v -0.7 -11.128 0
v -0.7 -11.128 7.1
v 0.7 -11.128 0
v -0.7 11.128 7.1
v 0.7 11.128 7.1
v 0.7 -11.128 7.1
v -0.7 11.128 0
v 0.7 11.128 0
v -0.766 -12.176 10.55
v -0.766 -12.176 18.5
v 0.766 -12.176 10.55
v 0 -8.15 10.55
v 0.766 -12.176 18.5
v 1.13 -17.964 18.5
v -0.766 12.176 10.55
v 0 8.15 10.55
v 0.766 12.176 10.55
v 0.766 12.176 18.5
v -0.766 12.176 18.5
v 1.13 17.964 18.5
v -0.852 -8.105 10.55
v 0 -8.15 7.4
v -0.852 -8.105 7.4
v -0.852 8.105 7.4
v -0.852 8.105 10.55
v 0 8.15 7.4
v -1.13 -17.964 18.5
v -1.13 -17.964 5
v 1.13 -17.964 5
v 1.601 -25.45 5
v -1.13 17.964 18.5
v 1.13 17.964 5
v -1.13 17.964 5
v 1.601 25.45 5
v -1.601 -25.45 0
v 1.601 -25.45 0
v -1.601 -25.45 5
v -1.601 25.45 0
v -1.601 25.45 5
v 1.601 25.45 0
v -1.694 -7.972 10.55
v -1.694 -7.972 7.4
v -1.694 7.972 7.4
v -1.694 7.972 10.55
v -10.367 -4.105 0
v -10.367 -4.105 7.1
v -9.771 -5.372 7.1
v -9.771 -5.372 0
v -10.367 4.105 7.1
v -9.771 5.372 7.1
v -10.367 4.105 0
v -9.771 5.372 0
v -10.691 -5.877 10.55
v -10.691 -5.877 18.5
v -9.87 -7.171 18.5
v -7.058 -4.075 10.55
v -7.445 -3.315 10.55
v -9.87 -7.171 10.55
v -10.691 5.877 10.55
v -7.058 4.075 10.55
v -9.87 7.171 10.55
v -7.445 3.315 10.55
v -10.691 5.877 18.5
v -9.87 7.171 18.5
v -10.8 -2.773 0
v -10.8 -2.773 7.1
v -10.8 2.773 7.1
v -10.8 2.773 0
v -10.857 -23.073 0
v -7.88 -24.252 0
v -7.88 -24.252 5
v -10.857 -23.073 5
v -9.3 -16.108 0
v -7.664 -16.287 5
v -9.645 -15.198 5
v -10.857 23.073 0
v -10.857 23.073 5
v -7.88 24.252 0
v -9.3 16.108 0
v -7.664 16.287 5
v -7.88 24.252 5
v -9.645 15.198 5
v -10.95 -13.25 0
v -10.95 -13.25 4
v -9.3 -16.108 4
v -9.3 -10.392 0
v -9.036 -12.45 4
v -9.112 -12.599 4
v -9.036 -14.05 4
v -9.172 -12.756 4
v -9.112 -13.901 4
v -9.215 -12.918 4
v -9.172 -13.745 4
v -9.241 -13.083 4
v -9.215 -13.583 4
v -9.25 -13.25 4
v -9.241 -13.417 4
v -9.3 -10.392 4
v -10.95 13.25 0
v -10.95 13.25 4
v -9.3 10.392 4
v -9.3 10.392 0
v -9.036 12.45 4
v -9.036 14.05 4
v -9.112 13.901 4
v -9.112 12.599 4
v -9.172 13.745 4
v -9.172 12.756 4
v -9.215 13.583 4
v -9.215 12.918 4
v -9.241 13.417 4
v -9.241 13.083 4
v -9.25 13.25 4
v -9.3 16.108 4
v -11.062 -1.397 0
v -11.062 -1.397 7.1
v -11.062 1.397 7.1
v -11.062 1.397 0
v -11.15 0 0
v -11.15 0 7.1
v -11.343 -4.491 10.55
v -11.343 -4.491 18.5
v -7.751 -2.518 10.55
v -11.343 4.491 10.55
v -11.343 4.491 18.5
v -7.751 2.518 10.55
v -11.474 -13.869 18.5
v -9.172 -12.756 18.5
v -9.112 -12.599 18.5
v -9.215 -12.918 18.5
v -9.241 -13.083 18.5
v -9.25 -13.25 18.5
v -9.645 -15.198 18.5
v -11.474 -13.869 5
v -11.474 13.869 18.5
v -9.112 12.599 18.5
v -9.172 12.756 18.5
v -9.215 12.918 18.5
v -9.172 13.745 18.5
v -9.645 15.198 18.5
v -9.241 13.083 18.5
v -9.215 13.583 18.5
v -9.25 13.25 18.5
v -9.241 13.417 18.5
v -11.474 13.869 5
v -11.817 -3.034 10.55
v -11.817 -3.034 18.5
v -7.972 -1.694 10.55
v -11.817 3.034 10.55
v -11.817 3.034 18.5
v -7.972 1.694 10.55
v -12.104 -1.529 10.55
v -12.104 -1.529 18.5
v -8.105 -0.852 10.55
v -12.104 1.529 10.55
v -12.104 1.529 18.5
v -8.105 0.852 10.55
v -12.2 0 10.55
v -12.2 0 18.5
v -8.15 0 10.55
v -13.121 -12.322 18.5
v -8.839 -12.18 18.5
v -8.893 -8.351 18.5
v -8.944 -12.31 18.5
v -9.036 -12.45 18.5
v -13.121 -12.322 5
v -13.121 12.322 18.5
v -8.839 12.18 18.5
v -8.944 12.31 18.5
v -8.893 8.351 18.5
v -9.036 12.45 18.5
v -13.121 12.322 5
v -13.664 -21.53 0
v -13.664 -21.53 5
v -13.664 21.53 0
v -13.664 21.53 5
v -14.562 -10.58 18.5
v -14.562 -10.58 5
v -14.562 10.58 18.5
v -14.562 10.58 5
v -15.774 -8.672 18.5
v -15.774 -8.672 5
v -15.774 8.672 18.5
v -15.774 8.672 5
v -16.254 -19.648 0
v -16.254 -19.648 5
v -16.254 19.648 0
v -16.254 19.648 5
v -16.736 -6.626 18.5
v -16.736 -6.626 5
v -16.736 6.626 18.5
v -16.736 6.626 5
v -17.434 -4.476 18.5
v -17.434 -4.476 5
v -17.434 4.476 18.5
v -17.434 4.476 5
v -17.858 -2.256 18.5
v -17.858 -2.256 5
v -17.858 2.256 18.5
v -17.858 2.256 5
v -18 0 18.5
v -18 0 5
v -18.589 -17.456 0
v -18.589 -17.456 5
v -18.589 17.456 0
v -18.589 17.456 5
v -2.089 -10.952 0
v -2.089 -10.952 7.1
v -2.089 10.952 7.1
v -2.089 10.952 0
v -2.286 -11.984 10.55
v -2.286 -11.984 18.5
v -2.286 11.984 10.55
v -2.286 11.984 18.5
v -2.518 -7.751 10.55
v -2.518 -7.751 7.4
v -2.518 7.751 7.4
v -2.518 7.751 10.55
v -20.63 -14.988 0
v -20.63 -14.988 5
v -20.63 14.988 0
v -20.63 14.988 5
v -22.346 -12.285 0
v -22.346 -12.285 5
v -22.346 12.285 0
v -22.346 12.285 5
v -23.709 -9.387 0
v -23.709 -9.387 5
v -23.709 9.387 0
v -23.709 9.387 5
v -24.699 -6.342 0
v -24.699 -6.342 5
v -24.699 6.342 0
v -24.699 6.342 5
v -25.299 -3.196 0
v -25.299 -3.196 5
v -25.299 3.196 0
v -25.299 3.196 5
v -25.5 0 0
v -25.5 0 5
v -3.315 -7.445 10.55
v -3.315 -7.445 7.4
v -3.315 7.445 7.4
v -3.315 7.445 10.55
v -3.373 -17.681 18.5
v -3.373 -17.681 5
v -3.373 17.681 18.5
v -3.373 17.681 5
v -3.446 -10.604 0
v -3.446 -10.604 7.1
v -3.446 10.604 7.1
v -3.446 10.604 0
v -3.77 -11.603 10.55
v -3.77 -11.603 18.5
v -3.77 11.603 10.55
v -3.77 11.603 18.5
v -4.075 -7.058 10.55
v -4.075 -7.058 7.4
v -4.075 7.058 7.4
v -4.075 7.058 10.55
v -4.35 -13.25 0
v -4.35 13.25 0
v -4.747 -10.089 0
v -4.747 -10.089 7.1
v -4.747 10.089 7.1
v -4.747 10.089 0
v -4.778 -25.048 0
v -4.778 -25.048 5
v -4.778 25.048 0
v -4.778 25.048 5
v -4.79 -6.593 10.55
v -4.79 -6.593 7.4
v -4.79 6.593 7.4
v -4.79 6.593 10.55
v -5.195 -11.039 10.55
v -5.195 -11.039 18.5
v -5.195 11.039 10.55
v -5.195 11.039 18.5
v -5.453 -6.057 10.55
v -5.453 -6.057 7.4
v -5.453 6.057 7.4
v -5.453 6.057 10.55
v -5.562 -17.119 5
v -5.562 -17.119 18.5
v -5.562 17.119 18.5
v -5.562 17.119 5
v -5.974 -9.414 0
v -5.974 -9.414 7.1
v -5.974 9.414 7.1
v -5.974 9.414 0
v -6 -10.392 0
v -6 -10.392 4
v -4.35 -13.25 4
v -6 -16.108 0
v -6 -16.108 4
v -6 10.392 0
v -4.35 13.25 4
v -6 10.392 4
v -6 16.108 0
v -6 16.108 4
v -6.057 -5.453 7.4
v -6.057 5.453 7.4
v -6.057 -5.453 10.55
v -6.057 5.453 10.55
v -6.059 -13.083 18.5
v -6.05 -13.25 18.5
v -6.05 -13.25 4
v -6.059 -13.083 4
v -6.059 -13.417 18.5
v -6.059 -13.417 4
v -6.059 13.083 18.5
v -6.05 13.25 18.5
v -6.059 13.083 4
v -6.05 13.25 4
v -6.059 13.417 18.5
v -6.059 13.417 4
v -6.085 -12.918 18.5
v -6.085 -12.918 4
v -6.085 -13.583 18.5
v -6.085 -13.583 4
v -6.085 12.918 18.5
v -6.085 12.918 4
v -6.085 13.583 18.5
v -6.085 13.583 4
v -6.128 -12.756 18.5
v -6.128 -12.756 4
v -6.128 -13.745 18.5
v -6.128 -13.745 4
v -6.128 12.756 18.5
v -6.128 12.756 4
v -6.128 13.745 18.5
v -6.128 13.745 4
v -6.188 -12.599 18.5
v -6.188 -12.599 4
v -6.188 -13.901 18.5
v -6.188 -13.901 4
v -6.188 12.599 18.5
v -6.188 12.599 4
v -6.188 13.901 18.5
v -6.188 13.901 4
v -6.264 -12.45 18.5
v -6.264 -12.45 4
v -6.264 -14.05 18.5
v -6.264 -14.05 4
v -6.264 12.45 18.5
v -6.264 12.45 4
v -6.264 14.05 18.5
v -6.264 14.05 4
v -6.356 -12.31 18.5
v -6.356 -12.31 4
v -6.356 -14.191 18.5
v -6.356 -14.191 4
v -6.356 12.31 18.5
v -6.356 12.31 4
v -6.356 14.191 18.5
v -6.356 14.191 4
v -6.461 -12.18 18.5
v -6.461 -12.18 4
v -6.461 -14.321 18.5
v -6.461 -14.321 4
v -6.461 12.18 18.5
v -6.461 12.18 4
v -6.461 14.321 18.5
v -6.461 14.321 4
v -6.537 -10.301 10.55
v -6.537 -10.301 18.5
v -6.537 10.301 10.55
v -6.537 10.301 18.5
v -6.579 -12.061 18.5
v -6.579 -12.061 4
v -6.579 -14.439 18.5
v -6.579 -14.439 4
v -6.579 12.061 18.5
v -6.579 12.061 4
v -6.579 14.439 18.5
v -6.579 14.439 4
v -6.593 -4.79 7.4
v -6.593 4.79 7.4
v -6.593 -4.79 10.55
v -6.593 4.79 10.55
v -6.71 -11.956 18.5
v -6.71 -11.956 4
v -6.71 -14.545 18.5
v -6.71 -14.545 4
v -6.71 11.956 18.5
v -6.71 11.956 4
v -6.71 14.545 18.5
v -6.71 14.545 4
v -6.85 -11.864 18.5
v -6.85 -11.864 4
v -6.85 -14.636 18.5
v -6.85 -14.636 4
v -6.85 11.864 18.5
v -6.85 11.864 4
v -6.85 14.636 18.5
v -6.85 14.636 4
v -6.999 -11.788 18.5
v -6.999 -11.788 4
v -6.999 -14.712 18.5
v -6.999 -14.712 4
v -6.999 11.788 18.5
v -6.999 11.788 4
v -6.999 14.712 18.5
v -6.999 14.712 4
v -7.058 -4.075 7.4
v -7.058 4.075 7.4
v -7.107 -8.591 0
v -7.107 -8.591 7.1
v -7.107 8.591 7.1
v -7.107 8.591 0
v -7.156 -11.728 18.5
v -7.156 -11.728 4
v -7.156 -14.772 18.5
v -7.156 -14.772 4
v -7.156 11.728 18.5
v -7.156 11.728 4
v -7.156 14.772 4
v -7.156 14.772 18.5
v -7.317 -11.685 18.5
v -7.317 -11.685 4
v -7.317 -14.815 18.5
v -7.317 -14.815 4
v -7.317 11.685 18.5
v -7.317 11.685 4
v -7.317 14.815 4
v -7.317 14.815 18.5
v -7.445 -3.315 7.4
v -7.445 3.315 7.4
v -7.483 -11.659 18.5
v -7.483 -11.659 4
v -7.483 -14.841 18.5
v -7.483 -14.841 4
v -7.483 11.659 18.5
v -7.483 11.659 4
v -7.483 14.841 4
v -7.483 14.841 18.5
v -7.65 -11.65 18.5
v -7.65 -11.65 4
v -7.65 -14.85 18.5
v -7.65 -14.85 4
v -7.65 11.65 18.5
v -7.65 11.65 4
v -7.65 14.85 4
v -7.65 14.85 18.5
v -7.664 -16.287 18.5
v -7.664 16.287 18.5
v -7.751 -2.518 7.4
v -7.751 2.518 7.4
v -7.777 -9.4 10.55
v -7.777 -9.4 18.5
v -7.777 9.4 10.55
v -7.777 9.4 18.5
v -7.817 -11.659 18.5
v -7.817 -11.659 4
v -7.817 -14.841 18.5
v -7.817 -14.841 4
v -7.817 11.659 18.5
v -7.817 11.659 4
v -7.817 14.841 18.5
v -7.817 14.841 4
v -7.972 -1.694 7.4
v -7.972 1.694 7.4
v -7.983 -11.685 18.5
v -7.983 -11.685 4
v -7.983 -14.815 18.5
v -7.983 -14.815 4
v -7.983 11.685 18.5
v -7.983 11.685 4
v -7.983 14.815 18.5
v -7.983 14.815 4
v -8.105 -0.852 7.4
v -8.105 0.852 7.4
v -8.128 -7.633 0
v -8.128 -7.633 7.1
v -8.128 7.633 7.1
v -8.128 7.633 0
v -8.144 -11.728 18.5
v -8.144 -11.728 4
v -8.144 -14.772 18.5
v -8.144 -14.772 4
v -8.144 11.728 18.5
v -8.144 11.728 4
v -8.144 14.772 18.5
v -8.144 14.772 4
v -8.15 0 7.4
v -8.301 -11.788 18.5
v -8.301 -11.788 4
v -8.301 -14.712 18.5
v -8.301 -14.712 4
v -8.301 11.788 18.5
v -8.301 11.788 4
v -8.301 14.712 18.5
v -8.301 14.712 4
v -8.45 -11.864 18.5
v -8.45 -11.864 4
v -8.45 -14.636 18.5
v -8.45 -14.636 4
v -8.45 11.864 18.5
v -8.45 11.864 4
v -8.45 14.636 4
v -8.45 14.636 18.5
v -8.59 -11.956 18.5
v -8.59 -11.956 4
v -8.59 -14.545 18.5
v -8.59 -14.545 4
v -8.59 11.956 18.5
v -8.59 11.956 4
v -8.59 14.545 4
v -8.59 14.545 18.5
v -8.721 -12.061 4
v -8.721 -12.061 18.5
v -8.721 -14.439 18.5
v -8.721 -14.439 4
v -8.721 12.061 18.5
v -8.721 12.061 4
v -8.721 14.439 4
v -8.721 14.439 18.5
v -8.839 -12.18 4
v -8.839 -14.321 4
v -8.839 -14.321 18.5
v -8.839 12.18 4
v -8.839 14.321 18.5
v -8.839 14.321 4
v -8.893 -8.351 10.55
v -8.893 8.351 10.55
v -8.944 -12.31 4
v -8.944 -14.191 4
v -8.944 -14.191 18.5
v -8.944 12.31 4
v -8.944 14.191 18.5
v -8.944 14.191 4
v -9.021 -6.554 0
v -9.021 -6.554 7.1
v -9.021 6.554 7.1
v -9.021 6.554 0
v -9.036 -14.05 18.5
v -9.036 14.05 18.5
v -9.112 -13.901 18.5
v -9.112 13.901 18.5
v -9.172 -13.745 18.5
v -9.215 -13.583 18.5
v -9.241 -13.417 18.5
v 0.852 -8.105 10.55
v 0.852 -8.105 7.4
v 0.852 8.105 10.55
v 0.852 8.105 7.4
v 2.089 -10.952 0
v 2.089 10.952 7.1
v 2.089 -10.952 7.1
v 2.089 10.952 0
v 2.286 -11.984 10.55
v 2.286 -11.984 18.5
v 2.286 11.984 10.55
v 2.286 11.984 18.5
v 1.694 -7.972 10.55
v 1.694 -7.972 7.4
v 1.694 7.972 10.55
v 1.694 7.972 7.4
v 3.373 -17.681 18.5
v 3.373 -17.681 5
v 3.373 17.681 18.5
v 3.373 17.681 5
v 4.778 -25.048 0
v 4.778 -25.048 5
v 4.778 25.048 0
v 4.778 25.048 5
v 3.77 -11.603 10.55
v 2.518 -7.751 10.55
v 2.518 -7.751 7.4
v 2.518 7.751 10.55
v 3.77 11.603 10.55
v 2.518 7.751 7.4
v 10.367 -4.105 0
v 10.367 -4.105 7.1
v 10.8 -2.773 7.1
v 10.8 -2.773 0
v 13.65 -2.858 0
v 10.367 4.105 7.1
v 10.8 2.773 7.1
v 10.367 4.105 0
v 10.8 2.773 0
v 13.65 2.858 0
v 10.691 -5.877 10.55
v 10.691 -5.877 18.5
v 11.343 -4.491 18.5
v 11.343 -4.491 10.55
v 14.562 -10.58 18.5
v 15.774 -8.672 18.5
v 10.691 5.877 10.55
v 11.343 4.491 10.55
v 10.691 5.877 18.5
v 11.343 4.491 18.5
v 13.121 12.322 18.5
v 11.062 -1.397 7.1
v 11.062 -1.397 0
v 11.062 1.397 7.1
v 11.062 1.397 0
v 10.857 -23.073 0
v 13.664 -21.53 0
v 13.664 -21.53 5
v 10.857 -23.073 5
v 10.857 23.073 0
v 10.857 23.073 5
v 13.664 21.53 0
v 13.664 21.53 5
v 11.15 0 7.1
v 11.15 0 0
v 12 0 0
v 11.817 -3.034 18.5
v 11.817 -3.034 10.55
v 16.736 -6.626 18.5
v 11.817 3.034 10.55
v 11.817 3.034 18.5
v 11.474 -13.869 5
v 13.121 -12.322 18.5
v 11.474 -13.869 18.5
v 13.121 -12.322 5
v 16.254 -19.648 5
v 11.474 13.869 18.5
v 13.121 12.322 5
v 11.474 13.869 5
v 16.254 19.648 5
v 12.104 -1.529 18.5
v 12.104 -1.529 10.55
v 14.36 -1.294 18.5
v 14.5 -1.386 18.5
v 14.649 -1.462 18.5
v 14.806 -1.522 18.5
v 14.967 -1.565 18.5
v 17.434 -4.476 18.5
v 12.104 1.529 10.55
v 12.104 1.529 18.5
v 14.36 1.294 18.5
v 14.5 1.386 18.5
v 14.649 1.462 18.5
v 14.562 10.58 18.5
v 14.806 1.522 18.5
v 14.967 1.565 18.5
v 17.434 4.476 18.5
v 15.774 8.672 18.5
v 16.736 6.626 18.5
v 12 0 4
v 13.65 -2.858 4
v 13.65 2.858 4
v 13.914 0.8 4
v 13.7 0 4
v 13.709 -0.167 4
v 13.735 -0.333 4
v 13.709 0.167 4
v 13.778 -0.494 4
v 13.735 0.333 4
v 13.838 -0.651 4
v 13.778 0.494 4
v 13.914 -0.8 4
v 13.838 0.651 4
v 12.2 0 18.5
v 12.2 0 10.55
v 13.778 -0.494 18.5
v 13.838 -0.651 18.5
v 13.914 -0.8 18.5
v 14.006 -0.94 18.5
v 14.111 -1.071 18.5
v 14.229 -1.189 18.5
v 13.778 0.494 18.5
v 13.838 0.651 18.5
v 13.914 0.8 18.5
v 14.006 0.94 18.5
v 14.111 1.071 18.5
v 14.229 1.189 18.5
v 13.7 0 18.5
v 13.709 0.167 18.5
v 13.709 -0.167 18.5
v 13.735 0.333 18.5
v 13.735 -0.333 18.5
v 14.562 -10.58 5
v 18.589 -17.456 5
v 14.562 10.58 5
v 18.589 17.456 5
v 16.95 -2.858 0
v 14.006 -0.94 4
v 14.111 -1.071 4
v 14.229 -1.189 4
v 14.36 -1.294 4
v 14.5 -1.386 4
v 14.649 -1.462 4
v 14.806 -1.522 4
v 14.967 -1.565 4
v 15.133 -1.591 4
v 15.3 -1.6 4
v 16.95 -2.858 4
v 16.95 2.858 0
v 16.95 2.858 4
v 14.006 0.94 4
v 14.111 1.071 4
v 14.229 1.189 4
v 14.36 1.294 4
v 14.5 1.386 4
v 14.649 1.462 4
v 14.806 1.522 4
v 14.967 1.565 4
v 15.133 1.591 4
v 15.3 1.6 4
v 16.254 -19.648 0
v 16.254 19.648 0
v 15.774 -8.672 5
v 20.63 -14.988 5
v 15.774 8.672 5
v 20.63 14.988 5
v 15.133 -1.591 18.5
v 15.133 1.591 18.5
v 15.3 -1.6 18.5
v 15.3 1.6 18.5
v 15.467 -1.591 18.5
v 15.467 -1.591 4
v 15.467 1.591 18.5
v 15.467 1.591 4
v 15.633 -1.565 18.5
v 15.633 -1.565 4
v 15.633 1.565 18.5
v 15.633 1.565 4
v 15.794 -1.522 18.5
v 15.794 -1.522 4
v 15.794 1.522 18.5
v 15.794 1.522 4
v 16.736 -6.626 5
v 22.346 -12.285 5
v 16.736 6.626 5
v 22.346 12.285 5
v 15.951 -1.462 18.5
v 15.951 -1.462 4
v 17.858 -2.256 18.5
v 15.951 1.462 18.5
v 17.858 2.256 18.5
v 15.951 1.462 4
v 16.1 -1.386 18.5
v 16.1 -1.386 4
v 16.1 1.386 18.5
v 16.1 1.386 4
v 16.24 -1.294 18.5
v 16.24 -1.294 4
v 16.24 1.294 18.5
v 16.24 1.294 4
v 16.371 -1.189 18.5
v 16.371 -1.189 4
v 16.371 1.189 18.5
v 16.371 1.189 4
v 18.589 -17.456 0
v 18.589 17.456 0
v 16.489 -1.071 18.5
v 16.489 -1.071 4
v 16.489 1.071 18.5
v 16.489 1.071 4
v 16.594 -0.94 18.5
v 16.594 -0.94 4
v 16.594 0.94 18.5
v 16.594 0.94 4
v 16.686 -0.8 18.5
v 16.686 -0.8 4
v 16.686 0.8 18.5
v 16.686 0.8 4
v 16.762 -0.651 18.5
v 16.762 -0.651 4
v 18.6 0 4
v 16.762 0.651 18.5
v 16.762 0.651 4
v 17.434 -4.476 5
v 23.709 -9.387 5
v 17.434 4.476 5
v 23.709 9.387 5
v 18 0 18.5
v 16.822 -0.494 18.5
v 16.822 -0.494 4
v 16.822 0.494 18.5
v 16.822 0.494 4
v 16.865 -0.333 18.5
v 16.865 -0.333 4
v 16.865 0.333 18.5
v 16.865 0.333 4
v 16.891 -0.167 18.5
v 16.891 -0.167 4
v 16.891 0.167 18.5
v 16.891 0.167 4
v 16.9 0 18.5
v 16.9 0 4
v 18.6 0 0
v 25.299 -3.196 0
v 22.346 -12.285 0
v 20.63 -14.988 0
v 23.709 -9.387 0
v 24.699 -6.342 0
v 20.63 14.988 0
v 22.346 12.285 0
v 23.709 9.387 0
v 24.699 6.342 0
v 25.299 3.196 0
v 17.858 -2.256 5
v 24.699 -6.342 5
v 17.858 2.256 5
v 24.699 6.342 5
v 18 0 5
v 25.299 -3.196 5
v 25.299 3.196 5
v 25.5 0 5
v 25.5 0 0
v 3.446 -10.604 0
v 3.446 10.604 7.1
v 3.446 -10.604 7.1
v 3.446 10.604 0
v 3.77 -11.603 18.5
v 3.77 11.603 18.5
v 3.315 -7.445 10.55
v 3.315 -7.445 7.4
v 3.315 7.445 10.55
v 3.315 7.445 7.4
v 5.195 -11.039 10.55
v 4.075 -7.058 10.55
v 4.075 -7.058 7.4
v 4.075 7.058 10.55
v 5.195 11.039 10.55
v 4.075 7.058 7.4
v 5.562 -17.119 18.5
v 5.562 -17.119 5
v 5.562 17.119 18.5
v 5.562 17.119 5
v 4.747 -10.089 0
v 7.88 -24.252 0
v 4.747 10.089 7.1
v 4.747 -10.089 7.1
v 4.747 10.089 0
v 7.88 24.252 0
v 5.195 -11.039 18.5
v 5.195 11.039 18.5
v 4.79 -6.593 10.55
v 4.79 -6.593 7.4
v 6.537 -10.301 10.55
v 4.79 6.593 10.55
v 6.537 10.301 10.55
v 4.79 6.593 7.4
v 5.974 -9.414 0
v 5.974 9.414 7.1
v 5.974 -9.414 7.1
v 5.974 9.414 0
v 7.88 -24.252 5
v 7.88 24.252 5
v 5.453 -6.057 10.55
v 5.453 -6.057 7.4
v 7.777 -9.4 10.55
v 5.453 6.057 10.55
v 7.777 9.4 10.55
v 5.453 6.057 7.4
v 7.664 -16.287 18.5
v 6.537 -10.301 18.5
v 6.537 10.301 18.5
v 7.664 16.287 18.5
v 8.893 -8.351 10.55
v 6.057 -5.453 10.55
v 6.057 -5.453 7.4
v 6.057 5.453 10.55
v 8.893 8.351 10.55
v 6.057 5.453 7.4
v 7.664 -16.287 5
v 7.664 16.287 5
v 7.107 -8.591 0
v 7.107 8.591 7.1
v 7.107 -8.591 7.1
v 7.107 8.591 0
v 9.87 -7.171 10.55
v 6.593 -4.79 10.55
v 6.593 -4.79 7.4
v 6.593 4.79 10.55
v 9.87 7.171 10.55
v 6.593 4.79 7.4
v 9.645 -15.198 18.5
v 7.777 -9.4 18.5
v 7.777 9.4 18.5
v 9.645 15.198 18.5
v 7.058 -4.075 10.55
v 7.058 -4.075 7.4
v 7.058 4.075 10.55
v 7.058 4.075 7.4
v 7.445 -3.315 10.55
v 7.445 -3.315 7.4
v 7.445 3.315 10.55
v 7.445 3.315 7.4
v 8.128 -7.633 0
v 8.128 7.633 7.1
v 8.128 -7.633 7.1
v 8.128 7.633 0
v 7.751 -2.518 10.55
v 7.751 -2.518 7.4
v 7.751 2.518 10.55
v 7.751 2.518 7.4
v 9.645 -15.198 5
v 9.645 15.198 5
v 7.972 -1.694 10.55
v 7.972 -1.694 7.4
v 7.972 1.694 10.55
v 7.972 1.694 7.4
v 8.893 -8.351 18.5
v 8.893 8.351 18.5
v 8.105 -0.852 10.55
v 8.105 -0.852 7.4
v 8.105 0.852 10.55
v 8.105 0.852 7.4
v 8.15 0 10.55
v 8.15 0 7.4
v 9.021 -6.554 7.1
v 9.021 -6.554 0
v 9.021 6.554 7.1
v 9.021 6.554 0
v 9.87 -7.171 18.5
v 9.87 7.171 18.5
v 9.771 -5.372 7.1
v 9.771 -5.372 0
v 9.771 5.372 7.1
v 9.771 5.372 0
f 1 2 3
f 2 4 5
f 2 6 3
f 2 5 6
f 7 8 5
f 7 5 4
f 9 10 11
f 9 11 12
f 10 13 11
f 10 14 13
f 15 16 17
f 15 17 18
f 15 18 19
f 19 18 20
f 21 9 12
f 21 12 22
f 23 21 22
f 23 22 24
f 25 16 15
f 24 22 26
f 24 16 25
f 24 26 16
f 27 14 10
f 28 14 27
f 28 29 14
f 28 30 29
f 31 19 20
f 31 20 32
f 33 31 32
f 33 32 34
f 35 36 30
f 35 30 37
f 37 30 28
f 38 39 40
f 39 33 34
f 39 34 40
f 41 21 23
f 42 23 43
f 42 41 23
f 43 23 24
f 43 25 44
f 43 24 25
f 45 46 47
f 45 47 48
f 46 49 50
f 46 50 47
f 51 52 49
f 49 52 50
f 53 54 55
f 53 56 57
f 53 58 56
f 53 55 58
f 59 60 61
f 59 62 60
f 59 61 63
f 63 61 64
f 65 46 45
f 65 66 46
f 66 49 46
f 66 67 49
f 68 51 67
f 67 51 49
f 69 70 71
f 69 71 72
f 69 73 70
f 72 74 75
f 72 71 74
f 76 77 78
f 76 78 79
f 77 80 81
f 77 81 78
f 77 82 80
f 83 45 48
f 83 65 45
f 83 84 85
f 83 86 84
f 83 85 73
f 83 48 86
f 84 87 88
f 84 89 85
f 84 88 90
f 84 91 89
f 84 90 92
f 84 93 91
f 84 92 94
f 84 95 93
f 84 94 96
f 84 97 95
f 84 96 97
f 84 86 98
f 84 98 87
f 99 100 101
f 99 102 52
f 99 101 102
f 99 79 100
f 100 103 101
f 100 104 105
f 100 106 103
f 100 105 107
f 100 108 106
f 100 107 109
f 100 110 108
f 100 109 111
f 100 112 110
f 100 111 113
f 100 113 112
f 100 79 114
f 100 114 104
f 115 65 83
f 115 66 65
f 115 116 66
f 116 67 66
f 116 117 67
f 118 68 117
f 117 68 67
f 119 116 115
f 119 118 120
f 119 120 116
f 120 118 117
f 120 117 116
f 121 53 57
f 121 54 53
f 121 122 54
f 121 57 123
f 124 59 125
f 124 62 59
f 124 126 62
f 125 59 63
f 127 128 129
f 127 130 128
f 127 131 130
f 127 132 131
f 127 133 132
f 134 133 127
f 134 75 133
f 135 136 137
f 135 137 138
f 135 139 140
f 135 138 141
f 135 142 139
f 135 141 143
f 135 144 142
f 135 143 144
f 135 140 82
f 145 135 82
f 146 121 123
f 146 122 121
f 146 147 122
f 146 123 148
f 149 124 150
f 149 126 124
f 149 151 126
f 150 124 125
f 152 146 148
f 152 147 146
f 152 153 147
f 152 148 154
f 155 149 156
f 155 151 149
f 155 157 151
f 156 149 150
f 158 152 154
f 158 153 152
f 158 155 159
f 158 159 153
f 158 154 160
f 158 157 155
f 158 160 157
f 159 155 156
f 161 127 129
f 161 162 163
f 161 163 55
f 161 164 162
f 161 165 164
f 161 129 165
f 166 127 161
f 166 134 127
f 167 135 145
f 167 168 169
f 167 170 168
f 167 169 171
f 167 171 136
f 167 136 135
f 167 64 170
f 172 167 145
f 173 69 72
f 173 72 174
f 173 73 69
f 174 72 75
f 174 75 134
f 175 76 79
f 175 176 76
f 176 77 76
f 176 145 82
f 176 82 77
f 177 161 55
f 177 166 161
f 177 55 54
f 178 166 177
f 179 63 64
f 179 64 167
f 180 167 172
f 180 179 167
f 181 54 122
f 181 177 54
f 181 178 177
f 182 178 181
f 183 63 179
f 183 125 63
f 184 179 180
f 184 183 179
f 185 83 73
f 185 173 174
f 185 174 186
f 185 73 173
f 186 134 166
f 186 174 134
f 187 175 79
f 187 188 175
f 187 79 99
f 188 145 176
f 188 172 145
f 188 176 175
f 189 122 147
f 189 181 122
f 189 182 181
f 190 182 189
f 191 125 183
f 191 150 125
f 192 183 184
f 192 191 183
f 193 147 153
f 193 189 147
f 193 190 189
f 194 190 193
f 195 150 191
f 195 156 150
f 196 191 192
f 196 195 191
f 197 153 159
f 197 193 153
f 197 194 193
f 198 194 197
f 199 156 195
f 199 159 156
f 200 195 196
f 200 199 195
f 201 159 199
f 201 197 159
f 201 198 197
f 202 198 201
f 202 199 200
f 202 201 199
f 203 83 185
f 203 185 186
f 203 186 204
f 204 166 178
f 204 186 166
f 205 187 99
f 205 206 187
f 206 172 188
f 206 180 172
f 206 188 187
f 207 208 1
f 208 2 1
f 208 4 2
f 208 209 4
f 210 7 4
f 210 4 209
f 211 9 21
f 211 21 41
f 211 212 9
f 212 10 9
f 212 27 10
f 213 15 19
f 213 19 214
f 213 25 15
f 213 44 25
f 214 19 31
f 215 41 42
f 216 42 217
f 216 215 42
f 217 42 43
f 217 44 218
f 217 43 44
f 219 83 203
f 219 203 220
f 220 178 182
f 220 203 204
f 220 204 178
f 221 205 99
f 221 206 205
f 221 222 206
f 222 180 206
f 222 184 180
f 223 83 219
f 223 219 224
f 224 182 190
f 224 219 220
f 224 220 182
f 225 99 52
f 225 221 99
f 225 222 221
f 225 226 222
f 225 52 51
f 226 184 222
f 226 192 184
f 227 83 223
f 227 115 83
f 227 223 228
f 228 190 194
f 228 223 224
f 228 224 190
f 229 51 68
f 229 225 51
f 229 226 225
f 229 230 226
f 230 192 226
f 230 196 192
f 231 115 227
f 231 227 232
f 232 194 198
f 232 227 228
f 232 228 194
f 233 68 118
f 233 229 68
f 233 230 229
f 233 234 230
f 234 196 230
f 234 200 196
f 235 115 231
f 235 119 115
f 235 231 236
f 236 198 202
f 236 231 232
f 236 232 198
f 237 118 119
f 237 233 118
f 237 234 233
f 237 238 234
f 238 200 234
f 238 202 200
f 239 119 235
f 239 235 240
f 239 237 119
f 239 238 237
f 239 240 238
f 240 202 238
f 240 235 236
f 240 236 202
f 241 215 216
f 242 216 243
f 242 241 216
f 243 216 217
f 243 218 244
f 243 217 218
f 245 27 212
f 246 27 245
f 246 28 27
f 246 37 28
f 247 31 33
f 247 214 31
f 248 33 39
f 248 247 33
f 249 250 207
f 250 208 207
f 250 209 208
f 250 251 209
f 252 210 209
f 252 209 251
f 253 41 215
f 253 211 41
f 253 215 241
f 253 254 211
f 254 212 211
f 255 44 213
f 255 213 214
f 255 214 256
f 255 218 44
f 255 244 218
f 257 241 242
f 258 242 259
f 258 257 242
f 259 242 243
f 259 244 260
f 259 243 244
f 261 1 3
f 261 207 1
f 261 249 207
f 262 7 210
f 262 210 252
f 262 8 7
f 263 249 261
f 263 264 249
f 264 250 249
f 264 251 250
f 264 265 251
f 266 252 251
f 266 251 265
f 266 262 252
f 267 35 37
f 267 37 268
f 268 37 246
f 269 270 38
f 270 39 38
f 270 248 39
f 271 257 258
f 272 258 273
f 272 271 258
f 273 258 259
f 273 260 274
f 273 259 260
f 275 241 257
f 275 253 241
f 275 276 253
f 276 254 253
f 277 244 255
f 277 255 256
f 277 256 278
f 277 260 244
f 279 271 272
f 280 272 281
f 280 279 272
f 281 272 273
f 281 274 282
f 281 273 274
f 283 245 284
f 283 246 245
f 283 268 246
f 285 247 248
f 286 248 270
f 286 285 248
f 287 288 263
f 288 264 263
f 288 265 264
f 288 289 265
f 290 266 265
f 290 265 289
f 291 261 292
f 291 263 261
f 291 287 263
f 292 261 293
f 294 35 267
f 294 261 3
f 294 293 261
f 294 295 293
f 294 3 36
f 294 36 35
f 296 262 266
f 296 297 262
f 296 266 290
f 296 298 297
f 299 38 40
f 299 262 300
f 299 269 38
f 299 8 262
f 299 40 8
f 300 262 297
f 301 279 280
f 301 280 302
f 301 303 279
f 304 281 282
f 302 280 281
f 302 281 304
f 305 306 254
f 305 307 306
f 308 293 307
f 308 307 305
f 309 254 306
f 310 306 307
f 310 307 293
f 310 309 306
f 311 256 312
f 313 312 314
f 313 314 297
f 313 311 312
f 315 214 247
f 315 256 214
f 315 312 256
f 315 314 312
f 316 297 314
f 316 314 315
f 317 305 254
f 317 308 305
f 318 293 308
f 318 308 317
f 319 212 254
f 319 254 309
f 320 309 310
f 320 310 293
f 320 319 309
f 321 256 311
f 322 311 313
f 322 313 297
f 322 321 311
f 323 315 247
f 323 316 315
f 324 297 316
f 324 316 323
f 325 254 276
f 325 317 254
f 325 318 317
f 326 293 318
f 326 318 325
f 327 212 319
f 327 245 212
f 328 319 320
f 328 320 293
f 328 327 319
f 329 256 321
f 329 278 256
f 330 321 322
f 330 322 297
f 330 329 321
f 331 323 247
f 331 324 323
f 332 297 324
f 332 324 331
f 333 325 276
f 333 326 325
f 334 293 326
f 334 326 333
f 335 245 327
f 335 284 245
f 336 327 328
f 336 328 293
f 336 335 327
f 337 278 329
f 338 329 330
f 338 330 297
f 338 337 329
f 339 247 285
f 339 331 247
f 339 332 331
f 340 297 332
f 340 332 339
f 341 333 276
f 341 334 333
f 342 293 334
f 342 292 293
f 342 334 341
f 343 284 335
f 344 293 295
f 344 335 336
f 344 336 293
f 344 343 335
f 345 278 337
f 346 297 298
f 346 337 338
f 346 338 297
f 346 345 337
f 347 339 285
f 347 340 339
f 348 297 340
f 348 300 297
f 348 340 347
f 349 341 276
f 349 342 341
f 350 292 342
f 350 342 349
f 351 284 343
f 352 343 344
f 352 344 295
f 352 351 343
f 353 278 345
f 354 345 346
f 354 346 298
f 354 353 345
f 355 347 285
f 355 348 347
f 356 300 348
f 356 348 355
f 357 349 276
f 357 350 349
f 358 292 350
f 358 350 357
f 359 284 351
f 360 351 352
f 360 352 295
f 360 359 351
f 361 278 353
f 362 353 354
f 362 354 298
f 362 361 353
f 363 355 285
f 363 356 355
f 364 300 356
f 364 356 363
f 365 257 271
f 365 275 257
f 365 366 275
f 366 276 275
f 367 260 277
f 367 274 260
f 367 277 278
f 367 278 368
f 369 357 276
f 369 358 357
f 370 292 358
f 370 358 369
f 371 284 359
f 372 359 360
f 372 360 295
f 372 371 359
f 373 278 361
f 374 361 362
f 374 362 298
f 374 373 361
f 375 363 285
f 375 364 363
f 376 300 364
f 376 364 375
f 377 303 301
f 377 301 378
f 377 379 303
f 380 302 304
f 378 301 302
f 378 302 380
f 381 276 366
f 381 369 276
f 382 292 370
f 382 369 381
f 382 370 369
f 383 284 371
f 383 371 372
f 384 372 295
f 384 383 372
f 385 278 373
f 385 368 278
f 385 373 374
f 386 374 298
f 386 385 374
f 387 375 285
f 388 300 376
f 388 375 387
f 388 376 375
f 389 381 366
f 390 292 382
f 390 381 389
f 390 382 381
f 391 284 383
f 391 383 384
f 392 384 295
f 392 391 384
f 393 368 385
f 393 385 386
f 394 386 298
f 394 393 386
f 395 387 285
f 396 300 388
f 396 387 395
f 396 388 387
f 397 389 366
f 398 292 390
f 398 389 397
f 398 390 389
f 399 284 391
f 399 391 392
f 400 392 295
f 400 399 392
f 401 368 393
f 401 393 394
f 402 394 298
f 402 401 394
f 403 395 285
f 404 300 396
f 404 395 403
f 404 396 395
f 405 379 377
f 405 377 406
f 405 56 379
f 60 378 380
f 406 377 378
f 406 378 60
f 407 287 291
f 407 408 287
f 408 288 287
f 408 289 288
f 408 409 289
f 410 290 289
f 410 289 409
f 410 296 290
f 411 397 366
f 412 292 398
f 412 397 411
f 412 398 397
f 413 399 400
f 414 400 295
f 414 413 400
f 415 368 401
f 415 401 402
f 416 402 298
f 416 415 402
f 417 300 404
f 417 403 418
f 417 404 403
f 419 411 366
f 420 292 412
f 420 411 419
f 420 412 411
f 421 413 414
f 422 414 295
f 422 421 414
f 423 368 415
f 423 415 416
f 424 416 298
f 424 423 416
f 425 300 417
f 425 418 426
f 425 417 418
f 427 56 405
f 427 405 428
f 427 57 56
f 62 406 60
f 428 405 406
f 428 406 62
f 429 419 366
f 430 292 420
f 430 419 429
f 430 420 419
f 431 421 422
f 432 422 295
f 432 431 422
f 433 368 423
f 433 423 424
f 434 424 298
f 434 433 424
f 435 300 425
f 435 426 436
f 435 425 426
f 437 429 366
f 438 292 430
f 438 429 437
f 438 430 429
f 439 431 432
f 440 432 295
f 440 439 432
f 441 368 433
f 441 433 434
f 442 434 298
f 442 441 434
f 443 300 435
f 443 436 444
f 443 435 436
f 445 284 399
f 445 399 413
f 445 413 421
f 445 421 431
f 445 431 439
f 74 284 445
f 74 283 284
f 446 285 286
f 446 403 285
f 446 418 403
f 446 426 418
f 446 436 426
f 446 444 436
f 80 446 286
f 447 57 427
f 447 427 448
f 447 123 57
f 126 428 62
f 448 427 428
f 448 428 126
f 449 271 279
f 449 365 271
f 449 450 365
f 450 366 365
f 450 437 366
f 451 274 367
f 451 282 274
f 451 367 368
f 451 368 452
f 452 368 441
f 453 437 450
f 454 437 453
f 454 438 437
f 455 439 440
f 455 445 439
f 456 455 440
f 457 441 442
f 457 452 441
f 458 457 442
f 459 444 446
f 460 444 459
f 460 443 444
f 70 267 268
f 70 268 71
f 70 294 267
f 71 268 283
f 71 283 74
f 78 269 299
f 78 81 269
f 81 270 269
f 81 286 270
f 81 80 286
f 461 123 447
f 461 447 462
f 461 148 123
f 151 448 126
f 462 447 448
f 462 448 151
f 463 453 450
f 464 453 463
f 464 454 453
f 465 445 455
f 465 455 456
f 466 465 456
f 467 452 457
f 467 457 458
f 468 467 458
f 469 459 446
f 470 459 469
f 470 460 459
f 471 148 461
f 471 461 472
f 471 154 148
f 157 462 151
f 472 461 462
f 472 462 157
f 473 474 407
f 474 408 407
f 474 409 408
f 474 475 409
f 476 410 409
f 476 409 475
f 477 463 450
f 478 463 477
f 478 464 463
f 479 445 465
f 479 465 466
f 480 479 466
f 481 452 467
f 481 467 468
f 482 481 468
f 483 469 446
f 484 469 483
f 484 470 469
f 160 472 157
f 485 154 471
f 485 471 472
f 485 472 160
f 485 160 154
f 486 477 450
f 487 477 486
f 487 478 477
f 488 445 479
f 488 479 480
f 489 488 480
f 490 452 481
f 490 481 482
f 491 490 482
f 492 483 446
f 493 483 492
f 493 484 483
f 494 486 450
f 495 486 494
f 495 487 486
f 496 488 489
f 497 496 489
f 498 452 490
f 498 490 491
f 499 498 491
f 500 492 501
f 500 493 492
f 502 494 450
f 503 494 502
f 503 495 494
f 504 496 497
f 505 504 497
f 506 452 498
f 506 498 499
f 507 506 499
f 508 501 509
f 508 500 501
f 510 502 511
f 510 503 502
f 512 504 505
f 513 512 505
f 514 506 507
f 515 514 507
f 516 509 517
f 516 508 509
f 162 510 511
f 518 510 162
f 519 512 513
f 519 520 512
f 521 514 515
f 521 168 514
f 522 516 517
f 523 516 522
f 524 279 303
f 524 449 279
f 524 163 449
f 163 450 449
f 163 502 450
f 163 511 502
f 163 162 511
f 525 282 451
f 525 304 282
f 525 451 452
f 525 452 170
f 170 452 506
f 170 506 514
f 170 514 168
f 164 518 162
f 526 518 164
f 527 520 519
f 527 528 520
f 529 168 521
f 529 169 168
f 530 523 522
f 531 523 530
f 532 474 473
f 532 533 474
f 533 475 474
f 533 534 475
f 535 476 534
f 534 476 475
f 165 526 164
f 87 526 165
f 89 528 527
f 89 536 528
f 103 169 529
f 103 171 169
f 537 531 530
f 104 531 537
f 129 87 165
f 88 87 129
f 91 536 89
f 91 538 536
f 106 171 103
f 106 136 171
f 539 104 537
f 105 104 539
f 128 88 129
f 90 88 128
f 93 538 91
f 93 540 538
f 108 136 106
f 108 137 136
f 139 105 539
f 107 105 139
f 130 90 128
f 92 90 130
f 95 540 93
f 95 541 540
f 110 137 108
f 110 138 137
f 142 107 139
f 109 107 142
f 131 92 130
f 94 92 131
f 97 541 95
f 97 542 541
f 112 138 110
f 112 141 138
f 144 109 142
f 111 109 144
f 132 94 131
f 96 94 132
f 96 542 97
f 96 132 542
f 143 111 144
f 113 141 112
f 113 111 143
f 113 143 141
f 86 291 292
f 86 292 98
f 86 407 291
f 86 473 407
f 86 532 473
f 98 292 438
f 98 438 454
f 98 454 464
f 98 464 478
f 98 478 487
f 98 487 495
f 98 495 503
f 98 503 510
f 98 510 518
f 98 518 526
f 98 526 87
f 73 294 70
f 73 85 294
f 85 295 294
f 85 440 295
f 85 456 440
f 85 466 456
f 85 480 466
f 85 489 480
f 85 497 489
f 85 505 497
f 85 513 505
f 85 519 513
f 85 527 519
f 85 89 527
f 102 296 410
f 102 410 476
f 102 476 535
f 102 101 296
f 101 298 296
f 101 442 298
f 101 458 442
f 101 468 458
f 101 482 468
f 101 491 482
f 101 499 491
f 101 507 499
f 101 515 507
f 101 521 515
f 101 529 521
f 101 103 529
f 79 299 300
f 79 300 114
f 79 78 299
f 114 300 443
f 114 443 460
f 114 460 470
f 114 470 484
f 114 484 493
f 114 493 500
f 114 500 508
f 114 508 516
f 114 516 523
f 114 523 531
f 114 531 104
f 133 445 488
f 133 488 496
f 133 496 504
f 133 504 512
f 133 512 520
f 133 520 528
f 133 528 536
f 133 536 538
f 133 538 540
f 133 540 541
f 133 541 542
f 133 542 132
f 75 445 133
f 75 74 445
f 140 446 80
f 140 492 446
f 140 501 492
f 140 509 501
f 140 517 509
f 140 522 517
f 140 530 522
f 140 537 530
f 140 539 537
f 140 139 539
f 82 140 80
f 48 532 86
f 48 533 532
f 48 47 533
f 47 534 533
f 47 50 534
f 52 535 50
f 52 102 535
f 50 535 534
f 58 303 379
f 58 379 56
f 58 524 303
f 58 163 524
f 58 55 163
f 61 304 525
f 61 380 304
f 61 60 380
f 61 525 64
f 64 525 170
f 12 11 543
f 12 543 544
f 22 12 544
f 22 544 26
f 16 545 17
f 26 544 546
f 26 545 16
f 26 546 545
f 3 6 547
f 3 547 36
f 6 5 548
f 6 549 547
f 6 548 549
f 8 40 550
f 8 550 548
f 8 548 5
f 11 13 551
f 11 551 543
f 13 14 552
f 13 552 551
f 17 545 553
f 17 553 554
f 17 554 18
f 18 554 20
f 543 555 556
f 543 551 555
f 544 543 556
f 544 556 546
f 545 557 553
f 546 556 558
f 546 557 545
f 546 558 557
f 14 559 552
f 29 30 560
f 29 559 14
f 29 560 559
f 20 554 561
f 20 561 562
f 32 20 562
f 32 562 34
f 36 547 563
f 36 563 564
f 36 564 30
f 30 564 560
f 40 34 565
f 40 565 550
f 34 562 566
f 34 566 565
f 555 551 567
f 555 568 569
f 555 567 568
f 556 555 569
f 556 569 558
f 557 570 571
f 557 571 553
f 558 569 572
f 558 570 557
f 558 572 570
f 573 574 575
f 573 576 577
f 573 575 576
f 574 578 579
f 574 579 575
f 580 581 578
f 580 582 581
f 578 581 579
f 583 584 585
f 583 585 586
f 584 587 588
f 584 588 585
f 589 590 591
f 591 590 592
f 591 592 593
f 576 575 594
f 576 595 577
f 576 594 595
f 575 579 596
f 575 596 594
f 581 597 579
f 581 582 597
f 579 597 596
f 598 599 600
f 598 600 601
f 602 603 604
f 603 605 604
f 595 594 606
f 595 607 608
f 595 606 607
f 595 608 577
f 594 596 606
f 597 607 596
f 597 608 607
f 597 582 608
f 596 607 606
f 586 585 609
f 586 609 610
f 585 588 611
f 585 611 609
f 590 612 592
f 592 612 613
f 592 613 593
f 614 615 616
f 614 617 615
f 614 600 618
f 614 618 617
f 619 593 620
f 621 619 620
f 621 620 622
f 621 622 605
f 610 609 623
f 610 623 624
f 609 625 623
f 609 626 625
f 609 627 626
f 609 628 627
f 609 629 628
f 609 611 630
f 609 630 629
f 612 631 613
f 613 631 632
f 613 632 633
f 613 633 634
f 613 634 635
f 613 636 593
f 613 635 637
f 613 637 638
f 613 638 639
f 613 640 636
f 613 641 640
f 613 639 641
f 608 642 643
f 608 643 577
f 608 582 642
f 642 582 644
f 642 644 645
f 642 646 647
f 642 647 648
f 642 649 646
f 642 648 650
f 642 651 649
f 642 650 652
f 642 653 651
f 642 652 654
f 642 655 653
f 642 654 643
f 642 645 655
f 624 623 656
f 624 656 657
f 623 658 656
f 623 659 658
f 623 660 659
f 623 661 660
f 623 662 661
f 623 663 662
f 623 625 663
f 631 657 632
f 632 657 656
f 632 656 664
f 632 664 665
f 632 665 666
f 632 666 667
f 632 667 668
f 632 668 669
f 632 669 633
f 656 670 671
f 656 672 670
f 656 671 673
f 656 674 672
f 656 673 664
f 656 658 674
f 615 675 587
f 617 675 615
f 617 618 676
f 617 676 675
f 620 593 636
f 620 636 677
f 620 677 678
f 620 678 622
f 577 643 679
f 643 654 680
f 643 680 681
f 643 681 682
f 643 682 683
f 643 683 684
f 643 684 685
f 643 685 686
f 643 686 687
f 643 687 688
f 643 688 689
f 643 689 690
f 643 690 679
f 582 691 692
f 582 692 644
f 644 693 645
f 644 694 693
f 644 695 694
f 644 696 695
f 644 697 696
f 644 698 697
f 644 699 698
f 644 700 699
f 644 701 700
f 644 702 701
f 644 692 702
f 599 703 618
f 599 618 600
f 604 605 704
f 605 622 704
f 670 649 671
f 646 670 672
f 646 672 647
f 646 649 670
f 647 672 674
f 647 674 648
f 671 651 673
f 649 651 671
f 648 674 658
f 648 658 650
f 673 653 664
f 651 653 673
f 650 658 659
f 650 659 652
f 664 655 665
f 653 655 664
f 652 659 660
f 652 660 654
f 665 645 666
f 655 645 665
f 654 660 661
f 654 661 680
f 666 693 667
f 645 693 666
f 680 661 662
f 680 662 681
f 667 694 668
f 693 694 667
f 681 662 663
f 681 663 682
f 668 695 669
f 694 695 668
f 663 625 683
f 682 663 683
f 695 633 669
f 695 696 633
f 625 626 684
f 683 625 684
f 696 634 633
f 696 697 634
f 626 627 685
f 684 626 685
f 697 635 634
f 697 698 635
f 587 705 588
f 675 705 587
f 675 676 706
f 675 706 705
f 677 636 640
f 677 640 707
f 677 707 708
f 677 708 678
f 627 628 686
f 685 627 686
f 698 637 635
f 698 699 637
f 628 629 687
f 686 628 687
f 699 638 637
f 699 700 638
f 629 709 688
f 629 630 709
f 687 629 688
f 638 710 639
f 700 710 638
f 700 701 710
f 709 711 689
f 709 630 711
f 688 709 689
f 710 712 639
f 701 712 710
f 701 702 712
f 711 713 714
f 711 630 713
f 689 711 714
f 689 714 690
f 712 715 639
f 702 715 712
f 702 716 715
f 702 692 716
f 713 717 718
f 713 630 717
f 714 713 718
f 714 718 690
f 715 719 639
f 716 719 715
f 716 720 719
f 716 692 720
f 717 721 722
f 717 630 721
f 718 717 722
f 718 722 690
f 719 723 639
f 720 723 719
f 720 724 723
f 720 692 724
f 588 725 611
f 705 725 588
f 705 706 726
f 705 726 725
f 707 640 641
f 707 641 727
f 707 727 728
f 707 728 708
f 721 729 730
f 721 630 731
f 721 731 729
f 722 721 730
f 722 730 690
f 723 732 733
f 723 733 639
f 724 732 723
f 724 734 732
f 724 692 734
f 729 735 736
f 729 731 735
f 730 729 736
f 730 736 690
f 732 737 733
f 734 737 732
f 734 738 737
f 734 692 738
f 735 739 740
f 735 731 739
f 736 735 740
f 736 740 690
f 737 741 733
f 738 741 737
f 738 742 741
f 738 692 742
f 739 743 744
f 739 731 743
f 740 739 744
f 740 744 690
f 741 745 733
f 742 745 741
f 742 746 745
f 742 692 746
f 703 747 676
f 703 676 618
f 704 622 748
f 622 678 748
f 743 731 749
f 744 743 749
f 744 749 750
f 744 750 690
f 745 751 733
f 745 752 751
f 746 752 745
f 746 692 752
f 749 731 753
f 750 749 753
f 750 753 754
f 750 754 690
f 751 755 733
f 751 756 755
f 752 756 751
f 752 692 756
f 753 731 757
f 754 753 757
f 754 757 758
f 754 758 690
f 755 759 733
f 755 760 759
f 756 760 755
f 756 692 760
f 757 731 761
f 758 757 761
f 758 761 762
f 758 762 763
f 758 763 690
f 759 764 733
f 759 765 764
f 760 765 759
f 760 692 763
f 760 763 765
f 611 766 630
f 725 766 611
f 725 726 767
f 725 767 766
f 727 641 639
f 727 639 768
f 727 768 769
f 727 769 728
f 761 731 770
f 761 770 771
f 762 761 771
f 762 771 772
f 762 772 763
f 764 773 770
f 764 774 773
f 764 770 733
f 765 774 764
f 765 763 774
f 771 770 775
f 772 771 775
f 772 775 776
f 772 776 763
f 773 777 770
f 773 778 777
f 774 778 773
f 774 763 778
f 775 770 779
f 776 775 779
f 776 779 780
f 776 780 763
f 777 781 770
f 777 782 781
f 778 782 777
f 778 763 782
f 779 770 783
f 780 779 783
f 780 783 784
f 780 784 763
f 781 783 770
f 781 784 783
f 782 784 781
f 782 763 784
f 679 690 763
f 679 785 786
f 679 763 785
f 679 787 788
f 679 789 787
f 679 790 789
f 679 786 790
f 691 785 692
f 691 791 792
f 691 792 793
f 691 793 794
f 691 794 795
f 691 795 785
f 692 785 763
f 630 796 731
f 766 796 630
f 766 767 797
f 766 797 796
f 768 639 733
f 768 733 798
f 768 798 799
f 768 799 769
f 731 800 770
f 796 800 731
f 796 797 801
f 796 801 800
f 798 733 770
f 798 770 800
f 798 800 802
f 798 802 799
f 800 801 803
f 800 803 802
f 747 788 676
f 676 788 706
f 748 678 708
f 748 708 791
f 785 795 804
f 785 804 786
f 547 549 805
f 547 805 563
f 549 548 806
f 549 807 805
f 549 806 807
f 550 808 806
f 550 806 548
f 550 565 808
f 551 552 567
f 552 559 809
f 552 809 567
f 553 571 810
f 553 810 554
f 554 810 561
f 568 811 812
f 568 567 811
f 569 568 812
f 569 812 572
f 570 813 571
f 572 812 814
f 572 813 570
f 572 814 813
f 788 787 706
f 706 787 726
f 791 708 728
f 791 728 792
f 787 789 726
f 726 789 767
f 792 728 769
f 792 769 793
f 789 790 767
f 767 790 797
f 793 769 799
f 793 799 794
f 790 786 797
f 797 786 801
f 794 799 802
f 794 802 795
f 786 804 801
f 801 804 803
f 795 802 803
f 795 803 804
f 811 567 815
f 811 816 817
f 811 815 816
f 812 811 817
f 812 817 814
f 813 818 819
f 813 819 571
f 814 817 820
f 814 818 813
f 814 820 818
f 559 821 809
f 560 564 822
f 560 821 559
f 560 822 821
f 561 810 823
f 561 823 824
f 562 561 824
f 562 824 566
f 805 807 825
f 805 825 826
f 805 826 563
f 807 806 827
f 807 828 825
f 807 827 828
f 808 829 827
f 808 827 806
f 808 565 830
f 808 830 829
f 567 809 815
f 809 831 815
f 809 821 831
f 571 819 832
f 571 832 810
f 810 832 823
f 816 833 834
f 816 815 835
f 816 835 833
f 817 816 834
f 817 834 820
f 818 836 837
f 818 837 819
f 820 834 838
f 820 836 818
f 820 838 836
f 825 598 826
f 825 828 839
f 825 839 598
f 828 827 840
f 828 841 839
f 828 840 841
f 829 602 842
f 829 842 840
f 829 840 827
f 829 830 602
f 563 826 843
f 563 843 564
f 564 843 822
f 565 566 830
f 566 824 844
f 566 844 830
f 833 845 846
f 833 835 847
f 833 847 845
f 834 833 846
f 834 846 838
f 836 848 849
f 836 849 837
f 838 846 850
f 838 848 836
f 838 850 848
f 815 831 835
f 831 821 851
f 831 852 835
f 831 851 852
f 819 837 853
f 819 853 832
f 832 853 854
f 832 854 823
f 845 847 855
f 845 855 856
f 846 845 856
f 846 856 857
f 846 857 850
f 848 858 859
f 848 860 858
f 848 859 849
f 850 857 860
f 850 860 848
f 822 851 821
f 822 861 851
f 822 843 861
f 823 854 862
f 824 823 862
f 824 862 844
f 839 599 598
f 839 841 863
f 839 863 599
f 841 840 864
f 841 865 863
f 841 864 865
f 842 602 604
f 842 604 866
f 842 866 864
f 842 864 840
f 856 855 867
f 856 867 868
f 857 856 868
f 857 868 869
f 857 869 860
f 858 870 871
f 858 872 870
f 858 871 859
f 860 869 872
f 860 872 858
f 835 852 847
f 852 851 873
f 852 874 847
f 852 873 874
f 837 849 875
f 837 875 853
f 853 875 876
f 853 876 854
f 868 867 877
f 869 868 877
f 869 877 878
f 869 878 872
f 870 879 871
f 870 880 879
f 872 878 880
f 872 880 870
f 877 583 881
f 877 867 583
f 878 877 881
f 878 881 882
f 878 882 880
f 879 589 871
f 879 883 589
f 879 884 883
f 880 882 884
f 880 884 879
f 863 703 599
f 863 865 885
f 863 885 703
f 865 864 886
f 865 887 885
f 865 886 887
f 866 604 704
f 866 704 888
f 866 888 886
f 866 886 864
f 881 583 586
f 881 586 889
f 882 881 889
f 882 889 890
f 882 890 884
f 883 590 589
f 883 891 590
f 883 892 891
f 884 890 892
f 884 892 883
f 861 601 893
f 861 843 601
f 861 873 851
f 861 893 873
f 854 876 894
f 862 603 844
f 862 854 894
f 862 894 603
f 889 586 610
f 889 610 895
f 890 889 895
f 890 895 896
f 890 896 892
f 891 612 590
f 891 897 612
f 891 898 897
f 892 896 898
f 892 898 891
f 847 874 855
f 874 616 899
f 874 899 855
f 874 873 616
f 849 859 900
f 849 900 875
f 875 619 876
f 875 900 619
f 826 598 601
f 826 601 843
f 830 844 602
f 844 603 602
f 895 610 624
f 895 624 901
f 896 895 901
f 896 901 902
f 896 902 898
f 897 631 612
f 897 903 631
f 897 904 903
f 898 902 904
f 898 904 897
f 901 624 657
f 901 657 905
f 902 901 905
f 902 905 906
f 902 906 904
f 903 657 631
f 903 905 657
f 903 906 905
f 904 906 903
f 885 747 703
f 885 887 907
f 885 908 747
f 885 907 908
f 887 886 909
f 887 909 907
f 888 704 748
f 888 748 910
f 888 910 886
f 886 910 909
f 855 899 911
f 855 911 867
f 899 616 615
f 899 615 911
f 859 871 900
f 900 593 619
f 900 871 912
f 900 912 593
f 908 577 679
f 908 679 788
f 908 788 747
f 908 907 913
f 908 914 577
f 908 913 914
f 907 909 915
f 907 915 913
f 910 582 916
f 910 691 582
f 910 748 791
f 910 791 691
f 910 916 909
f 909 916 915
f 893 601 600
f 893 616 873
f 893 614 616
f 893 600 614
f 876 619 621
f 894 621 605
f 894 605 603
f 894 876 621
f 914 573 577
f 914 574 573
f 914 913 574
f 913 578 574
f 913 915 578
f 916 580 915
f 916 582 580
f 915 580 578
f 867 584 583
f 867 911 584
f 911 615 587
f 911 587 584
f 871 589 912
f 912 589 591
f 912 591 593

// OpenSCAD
//Navrh disku pro mechove kolo

include <../parameters.scad>

global_clearance = 0.5;

layer_thickness = 0.3;

module 888_2011 (nut = true) {
    difference() {
        union() {
            cylinder(h=wheel_disc_upper_thickness, d=wheel_disc_diameter, $fn=50);
            cylinder(h=wheel_disc_upper_thickness+wheel_inner_thickness/2-0.5, d=wheel_inner_diameter, $fn=50);
        }

        translate([0, 0, 608_bearing_thickness/2 + wheel_disc_upper_thickness+2])
            cylinder(h=wheel_inner_thickness/2, d=wheel_inner_diameter-M3_nut_diameter-5, $fn=50);

        for (i=[0:2]) {
            //diry na srouby
            rotate([0,0,120*i])
                translate([wheel_inner_diameter/2-M3_screw_diameter+0.5, 0, -1])
                    cylinder(h=wheel_inner_thickness, d=M3_screw_diameter, $fn=60);

            //diry na matice nebo zapusteni hlavy sroubu M3x35
            rotate([0,0,120*i])
                  translate([wheel_inner_diameter/2-M3_screw_diameter+0.5, 0, -1])
                      cylinder(h=M3_screw_head_height+2, d=M3_nut_diameter, $fn= nut? 6 : 50);

          }

        //dira na vlozku pro M4 sroub
        translate([0, 0, 608_bearing_thickness + layer_thickness])
            cylinder (h=wheel_inner_thickness, d=608_bearing_outer_diameter-6, $fn=60);

        //dira pro lozisko 608
        translate([0, 0, -1])
            cylinder(h=608_bearing_thickness+1, d=608_bearing_outer_diameter, $fn=50);
    }
}

888_2011(true);
